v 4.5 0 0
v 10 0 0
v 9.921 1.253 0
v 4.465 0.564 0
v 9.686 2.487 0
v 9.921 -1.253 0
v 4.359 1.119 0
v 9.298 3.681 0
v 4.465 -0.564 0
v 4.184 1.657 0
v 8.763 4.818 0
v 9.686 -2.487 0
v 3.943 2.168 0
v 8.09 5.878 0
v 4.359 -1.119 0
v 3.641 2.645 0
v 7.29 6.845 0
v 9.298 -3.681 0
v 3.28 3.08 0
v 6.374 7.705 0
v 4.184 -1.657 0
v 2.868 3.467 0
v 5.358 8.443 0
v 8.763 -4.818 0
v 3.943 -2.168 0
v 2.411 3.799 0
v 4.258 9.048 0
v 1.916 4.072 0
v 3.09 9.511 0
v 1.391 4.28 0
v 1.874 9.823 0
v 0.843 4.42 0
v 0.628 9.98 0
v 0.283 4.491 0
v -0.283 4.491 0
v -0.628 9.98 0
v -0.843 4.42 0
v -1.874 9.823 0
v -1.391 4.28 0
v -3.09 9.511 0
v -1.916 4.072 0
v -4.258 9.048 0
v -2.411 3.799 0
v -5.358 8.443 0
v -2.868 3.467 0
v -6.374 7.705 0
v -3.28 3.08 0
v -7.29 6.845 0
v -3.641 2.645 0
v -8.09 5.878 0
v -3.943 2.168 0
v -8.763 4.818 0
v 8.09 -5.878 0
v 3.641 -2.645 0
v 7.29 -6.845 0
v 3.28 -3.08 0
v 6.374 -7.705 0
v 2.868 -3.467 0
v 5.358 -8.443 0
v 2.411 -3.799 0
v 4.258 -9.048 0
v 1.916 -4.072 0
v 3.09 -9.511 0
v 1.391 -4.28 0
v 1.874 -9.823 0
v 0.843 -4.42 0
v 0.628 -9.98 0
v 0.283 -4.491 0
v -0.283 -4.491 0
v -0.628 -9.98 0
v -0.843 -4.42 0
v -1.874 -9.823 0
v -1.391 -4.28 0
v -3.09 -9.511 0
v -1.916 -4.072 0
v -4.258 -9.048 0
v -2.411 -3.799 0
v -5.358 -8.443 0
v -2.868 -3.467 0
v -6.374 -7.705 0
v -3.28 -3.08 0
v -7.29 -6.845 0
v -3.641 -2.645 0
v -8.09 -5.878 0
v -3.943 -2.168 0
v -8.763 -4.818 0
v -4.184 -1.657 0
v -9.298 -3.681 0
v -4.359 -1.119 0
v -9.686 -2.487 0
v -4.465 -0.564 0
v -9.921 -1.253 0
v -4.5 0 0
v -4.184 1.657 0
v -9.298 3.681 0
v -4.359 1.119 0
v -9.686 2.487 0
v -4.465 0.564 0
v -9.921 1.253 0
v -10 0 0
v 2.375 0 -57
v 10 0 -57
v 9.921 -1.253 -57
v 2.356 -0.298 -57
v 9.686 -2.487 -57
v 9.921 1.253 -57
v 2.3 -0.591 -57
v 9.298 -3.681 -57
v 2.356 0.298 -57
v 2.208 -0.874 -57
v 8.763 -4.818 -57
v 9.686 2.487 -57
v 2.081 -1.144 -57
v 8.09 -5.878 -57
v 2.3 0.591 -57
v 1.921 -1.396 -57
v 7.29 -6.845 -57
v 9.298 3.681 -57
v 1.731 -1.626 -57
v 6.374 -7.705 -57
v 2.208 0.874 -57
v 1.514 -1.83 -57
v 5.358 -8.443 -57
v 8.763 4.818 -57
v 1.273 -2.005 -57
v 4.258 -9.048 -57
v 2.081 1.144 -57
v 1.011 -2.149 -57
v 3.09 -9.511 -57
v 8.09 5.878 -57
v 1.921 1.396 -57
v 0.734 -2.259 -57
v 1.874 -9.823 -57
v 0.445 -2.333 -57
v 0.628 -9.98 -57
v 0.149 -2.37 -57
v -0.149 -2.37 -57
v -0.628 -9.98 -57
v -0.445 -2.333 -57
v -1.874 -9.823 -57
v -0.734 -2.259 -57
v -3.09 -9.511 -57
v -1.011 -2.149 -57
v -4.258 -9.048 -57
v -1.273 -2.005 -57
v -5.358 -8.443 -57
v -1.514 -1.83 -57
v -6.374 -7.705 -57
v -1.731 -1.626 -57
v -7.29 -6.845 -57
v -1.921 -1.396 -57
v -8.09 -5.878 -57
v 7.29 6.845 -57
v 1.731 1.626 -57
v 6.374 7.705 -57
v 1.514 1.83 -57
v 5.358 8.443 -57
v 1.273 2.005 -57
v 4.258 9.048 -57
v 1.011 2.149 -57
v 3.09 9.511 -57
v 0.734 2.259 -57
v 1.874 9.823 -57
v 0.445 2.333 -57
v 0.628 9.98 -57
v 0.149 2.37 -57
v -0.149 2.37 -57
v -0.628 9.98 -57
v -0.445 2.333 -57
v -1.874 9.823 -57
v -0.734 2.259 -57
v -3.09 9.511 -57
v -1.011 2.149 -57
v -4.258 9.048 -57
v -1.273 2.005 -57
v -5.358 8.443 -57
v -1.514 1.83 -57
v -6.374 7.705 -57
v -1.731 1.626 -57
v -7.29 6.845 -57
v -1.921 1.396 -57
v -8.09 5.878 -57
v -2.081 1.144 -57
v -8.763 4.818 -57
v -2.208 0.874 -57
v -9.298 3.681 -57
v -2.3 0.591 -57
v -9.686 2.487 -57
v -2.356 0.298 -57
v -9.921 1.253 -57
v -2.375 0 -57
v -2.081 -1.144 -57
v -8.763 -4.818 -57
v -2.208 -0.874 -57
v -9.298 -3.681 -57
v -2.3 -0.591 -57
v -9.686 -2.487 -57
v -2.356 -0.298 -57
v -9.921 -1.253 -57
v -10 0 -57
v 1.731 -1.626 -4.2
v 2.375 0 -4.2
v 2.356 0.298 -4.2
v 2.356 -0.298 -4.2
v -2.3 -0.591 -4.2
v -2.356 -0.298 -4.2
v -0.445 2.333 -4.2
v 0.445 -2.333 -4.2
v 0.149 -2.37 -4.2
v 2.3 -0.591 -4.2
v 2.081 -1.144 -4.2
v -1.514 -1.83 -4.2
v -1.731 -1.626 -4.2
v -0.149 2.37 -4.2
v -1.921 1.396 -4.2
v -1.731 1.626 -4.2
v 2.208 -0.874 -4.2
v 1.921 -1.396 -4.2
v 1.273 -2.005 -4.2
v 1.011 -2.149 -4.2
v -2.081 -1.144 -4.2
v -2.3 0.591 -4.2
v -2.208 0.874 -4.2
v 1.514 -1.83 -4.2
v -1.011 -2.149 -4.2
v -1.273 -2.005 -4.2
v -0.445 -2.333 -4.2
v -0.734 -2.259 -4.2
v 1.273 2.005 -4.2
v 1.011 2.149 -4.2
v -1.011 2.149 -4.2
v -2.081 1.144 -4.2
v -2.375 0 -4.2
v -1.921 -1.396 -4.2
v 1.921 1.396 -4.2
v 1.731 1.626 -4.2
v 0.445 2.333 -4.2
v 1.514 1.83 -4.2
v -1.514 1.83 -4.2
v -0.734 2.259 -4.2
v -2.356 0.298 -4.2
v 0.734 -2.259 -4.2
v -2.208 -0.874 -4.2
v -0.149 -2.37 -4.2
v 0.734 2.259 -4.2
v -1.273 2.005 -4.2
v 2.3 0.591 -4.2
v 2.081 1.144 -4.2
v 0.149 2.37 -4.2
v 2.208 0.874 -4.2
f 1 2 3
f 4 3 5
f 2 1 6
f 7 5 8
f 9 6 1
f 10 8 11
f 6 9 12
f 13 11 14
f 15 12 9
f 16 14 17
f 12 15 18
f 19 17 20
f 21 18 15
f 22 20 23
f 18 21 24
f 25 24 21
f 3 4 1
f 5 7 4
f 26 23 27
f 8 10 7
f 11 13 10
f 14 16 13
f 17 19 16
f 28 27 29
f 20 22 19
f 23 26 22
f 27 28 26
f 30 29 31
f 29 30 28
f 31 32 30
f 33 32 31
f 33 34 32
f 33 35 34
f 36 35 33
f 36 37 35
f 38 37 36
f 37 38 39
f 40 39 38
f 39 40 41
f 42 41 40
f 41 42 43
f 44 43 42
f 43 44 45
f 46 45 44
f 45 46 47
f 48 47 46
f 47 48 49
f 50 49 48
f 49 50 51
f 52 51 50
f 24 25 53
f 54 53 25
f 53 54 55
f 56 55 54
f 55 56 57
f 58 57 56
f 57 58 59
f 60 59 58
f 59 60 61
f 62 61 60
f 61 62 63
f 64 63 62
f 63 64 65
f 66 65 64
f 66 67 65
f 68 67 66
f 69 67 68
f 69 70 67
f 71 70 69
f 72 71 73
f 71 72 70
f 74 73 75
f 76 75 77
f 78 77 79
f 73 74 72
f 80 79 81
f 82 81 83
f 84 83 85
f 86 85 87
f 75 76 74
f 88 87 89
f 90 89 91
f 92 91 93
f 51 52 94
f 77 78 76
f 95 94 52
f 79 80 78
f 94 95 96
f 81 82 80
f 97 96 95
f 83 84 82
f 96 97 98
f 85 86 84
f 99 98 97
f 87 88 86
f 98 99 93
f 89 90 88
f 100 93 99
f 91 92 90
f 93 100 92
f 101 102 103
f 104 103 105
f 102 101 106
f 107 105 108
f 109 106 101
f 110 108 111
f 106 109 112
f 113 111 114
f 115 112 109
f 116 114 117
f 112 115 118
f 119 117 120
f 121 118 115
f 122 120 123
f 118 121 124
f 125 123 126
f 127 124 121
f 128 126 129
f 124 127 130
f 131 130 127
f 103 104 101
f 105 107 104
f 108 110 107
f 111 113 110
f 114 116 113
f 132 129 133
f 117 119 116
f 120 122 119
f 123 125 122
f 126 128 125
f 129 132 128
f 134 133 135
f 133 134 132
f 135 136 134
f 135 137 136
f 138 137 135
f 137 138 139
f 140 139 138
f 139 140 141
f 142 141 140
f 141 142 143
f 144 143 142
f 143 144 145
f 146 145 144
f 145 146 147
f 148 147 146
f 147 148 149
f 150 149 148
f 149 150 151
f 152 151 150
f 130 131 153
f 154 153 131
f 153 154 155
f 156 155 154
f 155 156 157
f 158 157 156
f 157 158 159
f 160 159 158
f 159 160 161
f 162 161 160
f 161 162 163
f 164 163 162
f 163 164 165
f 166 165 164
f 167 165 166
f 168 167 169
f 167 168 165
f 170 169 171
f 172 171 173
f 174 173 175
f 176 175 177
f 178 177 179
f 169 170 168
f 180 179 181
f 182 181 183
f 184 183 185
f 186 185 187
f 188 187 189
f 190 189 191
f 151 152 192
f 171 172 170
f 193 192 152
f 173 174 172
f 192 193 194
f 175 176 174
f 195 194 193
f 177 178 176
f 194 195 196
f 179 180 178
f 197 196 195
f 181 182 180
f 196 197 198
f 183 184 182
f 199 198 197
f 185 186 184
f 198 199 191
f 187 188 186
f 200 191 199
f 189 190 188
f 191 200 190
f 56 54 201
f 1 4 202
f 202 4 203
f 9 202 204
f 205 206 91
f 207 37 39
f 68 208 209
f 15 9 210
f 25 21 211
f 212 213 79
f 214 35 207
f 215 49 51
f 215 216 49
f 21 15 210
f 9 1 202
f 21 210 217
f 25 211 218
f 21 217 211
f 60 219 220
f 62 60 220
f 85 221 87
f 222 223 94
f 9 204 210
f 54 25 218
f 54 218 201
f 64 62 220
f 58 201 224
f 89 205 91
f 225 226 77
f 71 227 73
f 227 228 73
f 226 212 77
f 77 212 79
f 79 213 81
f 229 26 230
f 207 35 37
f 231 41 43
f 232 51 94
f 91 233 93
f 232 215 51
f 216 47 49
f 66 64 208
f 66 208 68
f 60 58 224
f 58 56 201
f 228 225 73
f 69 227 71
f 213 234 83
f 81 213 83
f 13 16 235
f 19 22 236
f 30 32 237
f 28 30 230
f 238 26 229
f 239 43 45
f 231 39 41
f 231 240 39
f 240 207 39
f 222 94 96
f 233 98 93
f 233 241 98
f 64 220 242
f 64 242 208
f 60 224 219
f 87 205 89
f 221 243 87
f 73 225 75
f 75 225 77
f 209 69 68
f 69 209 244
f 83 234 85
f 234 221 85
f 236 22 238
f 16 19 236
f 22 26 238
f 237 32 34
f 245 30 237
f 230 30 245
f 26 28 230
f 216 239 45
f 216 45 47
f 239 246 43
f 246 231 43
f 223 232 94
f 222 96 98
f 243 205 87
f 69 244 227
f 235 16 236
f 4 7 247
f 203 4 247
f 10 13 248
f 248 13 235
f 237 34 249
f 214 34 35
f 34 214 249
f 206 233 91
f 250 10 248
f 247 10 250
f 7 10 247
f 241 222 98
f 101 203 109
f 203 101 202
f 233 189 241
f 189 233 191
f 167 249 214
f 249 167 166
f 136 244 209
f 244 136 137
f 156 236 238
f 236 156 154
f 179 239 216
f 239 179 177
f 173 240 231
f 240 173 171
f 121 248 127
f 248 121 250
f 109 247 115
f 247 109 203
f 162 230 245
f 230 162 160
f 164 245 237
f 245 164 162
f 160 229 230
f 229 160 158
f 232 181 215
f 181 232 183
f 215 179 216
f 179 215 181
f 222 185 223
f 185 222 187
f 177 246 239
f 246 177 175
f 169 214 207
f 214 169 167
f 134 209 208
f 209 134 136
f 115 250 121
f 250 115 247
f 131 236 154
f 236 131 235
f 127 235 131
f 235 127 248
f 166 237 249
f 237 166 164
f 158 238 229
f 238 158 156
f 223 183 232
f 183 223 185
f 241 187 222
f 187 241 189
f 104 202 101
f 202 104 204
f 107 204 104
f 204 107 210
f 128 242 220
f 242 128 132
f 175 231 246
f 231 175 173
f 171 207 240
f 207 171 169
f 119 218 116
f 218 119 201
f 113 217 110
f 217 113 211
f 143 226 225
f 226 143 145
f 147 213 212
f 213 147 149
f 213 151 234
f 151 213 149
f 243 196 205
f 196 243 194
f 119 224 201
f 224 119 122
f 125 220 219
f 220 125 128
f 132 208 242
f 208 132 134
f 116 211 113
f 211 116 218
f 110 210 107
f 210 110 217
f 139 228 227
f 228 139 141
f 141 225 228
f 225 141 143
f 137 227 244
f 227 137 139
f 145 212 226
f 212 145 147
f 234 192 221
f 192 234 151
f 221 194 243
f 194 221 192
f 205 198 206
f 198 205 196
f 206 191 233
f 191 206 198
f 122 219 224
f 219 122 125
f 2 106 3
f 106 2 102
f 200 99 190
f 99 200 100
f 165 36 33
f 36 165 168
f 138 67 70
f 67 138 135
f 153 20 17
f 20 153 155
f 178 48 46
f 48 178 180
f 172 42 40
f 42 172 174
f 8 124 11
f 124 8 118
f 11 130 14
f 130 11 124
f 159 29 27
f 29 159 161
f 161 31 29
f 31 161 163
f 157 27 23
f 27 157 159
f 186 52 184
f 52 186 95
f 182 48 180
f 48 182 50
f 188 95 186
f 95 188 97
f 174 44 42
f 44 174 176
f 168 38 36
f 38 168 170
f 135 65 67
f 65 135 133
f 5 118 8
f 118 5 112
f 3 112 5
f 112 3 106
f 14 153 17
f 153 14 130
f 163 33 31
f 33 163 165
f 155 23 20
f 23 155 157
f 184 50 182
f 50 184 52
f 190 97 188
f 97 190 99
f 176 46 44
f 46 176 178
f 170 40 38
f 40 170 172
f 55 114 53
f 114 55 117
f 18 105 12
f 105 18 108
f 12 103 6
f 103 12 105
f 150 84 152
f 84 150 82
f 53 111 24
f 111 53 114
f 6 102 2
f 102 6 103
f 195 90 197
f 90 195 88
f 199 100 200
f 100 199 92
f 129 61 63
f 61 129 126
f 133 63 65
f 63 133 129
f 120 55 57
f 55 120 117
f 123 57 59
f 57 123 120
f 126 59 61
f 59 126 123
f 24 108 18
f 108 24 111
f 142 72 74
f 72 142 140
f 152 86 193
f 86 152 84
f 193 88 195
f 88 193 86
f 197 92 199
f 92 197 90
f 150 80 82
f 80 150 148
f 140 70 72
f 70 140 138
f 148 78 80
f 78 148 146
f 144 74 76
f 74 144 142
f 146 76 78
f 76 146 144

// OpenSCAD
$fn = 50;


difference() {
	union() {
		translate(v = [0, 0, -57.0000000000]) {
			cylinder(h = 57, r = 10.0000000000);
		}
		cylinder(h = 0, r = 13.0000000000);
	}
	union() {
		translate(v = [0, 0, 0]) {
			rotate(a = [0, 0, 0]) {
				difference() {
					union() {
						#translate(v = [0, 0, -57.0000000000]) {
							cylinder(h = 57, r = 2.2500000000);
						}
						#translate(v = [0, 0, -4.2000000000]) {
							cylinder(h = 4.2000000000, r = 10.0000000000, r1 = 2.3750000000, r2 = 4.5000000000);
						}
						#translate(v = [0, 0, -57.0000000000]) {
							cylinder(h = 57, r = 2.3750000000);
						}
						#translate(v = [0, 0, -57.0000000000]) {
							cylinder(h = 57, r = 2.2500000000);
						}
					}
					union();
				}
			}
		}
	}
}
